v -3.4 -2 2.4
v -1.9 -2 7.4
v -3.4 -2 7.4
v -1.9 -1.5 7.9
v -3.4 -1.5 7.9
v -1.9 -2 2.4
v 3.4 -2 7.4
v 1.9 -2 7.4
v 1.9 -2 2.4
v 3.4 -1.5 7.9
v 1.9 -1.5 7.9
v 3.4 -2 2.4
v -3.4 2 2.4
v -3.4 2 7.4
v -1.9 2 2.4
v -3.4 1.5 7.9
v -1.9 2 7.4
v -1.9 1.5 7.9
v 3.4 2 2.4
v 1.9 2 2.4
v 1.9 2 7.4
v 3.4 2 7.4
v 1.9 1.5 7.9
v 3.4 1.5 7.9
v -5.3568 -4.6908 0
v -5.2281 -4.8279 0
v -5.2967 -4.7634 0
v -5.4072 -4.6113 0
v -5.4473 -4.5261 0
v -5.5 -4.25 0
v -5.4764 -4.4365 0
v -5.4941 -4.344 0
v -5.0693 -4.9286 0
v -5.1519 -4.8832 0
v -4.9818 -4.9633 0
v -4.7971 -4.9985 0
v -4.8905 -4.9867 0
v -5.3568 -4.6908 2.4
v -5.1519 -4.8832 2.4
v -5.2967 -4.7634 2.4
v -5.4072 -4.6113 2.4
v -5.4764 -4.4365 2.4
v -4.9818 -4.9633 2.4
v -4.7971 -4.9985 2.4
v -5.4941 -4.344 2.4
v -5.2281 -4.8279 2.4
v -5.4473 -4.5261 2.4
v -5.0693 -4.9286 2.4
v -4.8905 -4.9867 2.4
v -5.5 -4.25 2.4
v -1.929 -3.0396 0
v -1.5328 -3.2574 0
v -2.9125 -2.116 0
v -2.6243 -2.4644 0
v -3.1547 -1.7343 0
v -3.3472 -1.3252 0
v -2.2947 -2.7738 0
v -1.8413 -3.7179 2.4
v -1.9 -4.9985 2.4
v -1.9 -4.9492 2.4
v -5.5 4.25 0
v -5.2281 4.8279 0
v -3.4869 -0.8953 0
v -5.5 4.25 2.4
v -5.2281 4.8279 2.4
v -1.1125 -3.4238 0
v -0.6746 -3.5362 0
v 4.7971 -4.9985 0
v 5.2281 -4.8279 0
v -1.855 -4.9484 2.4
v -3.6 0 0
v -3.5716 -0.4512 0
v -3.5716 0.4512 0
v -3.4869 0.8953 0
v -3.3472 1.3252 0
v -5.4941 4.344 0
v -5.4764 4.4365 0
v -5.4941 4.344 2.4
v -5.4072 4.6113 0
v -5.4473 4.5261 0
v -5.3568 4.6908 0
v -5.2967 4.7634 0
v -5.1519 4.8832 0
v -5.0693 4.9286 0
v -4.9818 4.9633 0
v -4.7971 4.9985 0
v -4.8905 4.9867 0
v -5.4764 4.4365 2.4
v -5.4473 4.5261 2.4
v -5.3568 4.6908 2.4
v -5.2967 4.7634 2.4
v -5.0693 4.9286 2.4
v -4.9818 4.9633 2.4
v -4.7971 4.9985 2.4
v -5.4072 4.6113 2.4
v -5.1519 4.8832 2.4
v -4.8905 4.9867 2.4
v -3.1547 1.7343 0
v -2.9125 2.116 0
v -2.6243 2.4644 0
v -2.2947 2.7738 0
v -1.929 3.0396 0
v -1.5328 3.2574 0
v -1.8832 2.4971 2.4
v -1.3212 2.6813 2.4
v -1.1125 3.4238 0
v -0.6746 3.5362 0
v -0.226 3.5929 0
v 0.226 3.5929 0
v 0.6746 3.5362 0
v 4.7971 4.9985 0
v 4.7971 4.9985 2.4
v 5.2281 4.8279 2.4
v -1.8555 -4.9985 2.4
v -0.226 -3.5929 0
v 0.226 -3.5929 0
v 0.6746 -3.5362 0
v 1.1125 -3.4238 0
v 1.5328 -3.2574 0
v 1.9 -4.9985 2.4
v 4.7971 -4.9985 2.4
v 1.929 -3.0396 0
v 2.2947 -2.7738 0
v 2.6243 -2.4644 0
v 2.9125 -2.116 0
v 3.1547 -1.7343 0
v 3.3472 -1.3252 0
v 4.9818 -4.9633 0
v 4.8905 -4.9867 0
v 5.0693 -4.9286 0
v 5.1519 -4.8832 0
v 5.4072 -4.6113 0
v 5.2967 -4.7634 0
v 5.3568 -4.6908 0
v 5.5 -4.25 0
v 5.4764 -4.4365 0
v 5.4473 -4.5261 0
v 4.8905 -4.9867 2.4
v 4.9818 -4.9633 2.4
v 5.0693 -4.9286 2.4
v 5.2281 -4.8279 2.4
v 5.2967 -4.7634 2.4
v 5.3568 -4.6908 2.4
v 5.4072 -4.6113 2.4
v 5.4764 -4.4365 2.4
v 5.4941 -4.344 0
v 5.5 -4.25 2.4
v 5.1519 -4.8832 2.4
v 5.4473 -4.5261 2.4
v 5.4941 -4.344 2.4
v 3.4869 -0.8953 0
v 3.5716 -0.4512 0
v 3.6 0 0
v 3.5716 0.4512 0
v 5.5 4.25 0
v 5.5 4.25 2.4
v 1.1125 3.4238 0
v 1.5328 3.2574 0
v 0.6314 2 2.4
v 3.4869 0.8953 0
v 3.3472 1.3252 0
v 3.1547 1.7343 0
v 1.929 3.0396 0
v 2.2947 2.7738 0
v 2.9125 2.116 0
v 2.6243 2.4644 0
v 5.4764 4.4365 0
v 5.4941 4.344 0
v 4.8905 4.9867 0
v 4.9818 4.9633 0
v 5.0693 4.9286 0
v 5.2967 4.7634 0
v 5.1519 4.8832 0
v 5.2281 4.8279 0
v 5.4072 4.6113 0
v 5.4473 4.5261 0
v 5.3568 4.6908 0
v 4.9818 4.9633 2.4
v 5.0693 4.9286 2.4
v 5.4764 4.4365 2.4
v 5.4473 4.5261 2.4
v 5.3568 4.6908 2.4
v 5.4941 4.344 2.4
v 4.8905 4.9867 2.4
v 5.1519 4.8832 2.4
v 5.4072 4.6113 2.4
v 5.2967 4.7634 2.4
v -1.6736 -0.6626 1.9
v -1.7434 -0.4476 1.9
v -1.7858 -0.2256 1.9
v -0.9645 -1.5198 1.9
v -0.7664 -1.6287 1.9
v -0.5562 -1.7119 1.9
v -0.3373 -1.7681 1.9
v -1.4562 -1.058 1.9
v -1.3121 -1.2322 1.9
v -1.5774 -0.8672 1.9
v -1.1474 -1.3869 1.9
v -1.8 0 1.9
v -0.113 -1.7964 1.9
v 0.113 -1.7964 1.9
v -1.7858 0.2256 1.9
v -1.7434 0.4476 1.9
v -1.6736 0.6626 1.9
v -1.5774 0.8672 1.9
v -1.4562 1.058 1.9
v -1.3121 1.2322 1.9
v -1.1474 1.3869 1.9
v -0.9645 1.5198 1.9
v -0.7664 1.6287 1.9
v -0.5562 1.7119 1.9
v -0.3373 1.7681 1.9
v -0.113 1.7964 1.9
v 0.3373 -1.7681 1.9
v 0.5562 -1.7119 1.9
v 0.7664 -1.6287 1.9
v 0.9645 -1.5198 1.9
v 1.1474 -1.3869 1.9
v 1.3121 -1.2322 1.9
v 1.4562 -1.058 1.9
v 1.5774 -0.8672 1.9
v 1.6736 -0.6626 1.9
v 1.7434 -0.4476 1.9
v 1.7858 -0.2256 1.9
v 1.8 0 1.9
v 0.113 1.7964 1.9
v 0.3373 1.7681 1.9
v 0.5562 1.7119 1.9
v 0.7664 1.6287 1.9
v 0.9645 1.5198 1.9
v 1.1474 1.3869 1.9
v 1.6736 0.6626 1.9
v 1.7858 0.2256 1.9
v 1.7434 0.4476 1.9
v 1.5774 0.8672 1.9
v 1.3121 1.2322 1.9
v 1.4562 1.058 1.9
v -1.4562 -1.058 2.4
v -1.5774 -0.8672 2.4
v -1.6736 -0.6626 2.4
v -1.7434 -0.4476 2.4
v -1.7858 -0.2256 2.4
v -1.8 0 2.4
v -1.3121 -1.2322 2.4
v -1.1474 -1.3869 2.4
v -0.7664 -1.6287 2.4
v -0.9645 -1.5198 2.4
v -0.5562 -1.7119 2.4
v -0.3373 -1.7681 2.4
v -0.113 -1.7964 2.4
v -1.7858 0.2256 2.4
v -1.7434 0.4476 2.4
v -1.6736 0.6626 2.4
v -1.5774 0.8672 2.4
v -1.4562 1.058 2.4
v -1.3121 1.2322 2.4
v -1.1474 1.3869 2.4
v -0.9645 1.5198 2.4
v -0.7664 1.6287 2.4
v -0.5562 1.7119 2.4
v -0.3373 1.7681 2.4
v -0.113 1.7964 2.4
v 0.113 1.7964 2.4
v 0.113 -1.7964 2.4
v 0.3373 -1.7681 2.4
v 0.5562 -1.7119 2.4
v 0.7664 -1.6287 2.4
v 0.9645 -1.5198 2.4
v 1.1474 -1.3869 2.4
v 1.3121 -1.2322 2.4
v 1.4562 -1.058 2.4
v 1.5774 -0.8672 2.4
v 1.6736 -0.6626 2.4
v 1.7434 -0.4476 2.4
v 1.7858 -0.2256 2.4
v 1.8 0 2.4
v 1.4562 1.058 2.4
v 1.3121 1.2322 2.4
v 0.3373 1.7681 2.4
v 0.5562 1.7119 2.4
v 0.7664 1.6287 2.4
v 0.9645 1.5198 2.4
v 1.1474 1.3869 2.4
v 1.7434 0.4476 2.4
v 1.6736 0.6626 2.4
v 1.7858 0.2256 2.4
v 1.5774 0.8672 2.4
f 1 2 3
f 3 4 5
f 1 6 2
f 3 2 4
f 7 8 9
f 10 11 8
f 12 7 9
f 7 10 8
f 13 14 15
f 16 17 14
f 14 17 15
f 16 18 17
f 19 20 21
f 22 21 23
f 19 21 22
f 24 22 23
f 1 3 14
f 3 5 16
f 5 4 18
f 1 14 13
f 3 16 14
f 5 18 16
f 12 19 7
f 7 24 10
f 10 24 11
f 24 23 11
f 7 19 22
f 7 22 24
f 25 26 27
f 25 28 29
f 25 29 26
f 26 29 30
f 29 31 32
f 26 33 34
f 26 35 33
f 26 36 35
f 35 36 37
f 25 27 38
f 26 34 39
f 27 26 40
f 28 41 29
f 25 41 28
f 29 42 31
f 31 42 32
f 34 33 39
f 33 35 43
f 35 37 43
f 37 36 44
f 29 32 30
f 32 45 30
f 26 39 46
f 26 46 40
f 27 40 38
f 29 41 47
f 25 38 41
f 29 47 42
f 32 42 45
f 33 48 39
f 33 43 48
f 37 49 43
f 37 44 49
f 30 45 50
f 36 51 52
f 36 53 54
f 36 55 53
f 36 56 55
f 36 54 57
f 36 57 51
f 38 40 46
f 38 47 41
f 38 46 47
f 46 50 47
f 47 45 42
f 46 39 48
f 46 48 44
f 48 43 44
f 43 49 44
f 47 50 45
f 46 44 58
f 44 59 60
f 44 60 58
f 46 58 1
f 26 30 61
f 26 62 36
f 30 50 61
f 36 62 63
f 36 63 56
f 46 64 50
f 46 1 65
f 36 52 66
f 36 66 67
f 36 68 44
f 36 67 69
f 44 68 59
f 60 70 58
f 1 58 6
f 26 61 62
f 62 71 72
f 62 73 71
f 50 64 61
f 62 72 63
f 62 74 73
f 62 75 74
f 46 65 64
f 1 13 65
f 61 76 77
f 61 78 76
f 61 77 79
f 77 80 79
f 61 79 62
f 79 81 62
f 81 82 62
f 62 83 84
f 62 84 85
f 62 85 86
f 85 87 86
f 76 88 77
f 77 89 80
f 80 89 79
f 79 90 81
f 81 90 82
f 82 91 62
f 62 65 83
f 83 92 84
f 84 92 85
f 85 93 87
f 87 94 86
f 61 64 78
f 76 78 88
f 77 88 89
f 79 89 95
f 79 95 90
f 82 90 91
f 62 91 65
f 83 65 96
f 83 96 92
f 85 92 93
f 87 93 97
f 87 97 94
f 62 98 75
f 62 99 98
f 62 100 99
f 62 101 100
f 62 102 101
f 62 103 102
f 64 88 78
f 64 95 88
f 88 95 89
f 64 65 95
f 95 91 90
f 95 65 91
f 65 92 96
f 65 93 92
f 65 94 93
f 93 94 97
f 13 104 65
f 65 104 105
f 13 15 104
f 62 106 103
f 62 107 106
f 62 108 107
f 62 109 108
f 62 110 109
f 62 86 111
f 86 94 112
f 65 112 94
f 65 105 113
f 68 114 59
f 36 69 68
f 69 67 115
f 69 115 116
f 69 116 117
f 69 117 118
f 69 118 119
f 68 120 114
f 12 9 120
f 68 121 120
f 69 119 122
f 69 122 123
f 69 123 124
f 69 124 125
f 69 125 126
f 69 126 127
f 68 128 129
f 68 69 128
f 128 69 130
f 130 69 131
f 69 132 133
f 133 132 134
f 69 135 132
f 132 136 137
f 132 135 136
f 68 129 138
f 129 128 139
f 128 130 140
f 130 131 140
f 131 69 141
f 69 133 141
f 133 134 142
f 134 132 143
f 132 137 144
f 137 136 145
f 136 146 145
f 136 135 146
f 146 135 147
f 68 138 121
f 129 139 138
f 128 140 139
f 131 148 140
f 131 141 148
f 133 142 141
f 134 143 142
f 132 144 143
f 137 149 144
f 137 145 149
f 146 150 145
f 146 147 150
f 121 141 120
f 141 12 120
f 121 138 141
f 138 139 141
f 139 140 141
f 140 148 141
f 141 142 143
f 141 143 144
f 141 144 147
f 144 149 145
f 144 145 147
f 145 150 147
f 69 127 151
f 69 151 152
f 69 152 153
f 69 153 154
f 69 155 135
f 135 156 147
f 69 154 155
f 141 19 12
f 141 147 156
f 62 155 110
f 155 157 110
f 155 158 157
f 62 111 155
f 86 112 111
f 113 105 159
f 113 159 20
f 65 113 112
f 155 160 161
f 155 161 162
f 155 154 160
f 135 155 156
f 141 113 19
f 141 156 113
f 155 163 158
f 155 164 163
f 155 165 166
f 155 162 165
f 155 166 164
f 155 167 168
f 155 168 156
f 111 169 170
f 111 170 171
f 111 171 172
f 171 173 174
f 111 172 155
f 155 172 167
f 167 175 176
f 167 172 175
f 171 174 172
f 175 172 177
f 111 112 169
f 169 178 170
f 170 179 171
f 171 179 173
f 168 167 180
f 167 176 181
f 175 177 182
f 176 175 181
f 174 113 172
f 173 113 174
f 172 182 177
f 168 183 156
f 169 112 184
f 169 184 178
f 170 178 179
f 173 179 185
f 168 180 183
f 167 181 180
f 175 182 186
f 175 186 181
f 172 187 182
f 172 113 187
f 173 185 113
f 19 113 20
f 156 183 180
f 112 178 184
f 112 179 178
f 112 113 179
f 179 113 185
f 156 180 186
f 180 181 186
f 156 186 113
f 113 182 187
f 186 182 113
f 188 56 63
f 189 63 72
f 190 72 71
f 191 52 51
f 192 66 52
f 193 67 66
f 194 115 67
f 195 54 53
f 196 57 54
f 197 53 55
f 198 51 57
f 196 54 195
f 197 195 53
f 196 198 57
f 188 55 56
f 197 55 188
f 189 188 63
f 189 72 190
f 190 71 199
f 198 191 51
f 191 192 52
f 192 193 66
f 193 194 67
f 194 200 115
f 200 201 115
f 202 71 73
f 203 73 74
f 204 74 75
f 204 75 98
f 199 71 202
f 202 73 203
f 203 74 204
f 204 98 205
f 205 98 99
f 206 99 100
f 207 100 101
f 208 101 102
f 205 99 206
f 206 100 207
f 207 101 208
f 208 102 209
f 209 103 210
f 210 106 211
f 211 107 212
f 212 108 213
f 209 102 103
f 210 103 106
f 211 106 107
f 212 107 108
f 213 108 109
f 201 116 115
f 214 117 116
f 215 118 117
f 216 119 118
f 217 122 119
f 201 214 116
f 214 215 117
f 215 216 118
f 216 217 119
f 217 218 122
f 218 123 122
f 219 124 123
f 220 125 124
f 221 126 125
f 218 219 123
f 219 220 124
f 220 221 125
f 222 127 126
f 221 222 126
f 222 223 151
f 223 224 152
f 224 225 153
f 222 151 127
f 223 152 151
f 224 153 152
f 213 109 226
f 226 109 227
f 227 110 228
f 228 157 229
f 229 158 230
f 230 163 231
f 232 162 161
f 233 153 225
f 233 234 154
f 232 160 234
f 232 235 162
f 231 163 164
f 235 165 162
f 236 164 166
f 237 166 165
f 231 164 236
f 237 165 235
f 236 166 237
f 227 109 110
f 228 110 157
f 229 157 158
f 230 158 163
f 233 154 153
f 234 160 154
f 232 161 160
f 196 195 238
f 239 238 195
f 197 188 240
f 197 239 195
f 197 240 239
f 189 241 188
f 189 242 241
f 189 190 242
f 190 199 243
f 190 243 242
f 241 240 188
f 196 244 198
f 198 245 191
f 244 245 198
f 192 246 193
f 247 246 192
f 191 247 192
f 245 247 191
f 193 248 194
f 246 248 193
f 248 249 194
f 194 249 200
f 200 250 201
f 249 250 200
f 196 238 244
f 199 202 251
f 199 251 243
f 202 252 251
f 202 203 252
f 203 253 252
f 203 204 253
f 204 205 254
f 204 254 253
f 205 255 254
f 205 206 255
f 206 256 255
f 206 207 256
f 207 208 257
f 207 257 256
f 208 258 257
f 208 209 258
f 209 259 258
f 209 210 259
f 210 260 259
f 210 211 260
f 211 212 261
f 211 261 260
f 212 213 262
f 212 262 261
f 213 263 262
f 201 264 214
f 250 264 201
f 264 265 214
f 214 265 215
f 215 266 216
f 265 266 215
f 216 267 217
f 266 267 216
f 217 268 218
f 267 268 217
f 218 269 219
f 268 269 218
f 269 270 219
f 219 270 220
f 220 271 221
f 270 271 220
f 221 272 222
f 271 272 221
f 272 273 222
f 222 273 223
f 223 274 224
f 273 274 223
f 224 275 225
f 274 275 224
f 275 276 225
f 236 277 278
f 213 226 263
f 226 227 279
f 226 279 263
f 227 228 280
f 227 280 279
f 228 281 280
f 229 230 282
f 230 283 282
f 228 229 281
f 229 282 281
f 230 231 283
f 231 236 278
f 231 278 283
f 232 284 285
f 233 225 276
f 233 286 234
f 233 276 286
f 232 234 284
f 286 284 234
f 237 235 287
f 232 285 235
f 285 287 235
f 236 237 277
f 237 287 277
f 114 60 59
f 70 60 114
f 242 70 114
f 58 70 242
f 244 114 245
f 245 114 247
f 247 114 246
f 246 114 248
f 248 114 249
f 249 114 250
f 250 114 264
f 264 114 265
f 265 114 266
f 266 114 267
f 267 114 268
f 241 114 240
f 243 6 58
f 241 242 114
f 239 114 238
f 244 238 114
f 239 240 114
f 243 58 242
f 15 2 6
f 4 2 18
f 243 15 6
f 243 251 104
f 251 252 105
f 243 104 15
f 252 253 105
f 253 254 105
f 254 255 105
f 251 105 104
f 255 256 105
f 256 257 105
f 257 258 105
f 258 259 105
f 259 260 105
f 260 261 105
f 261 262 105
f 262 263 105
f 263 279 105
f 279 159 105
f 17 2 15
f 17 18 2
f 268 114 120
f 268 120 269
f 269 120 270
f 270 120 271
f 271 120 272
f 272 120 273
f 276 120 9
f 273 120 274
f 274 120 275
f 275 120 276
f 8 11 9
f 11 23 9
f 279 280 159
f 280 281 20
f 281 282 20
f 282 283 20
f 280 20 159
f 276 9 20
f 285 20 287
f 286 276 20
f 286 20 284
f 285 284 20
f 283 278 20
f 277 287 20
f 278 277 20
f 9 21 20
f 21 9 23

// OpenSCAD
$fn = 50;

difference() {
	union() {
		translate(v = [0, -8.0, 2.4]) {
			rotate(a = [0, 0, 0]) {
				difference() {
					union() {
						translate(v = [0, 0, 0]) {
							rotate(a = [0, 0, 0]) {
								difference() {
									union() {
										translate(v = [-3.4, 0, -0.05]) {
											cube(size = [6.8, 10.0, 5.55]);
										}
									}
									union() {
										translate(v = [-3.5, 0, 0]) {
											rotate(a = [90, 0, 90]) {
												linear_extrude(height = 7.0) {
													polygon(points = [[-0.1, -0.1], [6.0, -0.1], [6.0, 5.0], [6.6, 5.6], [-0.1, 5.6]]);
												}
											}
										}
										translate(v = [-3.5, 0, 0]) {
											rotate(a = [90, 0, 90]) {
												linear_extrude(height = 7.0) {
													polygon(points = [[10.0, -0.1], [11.0, -0.1], [11.0, 5.6], [9.4, 5.6], [10.0, 5.0]]);
												}
											}
										}
									}
								}
							}
						}
						translate(v = [0, 8.0, -2.4]) {
							hull() {
								translate(v = [-4.75, 4.25, 0]) {
									cylinder(h = 2.4, r = 0.75);
								}
								translate(v = [4.75, 4.25, 0]) {
									cylinder(h = 2.4, r = 0.75);
								}
								translate(v = [-4.75, -4.25, 0]) {
									cylinder(h = 2.4, r = 0.75);
								}
								translate(v = [4.75, -4.25, 0]) {
									cylinder(h = 2.4, r = 0.75);
								}
							}
						}
					}
					union() {
						translate(v = [0, 8.0, -2.4]) {
							rotate(a = [0, 180, 0]) {
								difference() {
									union() {
										translate(v = [0, 0, -20.0]) {
											cylinder(h = 20.0, r = 1.5);
										}
										translate(v = [0, 0, -1.9]) {
											cylinder(h = 1.9, r1 = 1.8, r2 = 3.6);
										}
										cylinder(h = 250, r = 3.6);
										translate(v = [0, 0, -20.0]) {
											cylinder(h = 20.0, r = 1.8);
										}
										translate(v = [0, 0, -20.0]) {
											cylinder(h = 20.0, r = 1.5);
										}
									}
									union();
								}
							}
						}
						translate(v = [-1.9, -1, 0]) {
							cube(size = [3.8, 12.0, 5.6]);
						}
					}
				}
			}
		}
	}
	union();
}
